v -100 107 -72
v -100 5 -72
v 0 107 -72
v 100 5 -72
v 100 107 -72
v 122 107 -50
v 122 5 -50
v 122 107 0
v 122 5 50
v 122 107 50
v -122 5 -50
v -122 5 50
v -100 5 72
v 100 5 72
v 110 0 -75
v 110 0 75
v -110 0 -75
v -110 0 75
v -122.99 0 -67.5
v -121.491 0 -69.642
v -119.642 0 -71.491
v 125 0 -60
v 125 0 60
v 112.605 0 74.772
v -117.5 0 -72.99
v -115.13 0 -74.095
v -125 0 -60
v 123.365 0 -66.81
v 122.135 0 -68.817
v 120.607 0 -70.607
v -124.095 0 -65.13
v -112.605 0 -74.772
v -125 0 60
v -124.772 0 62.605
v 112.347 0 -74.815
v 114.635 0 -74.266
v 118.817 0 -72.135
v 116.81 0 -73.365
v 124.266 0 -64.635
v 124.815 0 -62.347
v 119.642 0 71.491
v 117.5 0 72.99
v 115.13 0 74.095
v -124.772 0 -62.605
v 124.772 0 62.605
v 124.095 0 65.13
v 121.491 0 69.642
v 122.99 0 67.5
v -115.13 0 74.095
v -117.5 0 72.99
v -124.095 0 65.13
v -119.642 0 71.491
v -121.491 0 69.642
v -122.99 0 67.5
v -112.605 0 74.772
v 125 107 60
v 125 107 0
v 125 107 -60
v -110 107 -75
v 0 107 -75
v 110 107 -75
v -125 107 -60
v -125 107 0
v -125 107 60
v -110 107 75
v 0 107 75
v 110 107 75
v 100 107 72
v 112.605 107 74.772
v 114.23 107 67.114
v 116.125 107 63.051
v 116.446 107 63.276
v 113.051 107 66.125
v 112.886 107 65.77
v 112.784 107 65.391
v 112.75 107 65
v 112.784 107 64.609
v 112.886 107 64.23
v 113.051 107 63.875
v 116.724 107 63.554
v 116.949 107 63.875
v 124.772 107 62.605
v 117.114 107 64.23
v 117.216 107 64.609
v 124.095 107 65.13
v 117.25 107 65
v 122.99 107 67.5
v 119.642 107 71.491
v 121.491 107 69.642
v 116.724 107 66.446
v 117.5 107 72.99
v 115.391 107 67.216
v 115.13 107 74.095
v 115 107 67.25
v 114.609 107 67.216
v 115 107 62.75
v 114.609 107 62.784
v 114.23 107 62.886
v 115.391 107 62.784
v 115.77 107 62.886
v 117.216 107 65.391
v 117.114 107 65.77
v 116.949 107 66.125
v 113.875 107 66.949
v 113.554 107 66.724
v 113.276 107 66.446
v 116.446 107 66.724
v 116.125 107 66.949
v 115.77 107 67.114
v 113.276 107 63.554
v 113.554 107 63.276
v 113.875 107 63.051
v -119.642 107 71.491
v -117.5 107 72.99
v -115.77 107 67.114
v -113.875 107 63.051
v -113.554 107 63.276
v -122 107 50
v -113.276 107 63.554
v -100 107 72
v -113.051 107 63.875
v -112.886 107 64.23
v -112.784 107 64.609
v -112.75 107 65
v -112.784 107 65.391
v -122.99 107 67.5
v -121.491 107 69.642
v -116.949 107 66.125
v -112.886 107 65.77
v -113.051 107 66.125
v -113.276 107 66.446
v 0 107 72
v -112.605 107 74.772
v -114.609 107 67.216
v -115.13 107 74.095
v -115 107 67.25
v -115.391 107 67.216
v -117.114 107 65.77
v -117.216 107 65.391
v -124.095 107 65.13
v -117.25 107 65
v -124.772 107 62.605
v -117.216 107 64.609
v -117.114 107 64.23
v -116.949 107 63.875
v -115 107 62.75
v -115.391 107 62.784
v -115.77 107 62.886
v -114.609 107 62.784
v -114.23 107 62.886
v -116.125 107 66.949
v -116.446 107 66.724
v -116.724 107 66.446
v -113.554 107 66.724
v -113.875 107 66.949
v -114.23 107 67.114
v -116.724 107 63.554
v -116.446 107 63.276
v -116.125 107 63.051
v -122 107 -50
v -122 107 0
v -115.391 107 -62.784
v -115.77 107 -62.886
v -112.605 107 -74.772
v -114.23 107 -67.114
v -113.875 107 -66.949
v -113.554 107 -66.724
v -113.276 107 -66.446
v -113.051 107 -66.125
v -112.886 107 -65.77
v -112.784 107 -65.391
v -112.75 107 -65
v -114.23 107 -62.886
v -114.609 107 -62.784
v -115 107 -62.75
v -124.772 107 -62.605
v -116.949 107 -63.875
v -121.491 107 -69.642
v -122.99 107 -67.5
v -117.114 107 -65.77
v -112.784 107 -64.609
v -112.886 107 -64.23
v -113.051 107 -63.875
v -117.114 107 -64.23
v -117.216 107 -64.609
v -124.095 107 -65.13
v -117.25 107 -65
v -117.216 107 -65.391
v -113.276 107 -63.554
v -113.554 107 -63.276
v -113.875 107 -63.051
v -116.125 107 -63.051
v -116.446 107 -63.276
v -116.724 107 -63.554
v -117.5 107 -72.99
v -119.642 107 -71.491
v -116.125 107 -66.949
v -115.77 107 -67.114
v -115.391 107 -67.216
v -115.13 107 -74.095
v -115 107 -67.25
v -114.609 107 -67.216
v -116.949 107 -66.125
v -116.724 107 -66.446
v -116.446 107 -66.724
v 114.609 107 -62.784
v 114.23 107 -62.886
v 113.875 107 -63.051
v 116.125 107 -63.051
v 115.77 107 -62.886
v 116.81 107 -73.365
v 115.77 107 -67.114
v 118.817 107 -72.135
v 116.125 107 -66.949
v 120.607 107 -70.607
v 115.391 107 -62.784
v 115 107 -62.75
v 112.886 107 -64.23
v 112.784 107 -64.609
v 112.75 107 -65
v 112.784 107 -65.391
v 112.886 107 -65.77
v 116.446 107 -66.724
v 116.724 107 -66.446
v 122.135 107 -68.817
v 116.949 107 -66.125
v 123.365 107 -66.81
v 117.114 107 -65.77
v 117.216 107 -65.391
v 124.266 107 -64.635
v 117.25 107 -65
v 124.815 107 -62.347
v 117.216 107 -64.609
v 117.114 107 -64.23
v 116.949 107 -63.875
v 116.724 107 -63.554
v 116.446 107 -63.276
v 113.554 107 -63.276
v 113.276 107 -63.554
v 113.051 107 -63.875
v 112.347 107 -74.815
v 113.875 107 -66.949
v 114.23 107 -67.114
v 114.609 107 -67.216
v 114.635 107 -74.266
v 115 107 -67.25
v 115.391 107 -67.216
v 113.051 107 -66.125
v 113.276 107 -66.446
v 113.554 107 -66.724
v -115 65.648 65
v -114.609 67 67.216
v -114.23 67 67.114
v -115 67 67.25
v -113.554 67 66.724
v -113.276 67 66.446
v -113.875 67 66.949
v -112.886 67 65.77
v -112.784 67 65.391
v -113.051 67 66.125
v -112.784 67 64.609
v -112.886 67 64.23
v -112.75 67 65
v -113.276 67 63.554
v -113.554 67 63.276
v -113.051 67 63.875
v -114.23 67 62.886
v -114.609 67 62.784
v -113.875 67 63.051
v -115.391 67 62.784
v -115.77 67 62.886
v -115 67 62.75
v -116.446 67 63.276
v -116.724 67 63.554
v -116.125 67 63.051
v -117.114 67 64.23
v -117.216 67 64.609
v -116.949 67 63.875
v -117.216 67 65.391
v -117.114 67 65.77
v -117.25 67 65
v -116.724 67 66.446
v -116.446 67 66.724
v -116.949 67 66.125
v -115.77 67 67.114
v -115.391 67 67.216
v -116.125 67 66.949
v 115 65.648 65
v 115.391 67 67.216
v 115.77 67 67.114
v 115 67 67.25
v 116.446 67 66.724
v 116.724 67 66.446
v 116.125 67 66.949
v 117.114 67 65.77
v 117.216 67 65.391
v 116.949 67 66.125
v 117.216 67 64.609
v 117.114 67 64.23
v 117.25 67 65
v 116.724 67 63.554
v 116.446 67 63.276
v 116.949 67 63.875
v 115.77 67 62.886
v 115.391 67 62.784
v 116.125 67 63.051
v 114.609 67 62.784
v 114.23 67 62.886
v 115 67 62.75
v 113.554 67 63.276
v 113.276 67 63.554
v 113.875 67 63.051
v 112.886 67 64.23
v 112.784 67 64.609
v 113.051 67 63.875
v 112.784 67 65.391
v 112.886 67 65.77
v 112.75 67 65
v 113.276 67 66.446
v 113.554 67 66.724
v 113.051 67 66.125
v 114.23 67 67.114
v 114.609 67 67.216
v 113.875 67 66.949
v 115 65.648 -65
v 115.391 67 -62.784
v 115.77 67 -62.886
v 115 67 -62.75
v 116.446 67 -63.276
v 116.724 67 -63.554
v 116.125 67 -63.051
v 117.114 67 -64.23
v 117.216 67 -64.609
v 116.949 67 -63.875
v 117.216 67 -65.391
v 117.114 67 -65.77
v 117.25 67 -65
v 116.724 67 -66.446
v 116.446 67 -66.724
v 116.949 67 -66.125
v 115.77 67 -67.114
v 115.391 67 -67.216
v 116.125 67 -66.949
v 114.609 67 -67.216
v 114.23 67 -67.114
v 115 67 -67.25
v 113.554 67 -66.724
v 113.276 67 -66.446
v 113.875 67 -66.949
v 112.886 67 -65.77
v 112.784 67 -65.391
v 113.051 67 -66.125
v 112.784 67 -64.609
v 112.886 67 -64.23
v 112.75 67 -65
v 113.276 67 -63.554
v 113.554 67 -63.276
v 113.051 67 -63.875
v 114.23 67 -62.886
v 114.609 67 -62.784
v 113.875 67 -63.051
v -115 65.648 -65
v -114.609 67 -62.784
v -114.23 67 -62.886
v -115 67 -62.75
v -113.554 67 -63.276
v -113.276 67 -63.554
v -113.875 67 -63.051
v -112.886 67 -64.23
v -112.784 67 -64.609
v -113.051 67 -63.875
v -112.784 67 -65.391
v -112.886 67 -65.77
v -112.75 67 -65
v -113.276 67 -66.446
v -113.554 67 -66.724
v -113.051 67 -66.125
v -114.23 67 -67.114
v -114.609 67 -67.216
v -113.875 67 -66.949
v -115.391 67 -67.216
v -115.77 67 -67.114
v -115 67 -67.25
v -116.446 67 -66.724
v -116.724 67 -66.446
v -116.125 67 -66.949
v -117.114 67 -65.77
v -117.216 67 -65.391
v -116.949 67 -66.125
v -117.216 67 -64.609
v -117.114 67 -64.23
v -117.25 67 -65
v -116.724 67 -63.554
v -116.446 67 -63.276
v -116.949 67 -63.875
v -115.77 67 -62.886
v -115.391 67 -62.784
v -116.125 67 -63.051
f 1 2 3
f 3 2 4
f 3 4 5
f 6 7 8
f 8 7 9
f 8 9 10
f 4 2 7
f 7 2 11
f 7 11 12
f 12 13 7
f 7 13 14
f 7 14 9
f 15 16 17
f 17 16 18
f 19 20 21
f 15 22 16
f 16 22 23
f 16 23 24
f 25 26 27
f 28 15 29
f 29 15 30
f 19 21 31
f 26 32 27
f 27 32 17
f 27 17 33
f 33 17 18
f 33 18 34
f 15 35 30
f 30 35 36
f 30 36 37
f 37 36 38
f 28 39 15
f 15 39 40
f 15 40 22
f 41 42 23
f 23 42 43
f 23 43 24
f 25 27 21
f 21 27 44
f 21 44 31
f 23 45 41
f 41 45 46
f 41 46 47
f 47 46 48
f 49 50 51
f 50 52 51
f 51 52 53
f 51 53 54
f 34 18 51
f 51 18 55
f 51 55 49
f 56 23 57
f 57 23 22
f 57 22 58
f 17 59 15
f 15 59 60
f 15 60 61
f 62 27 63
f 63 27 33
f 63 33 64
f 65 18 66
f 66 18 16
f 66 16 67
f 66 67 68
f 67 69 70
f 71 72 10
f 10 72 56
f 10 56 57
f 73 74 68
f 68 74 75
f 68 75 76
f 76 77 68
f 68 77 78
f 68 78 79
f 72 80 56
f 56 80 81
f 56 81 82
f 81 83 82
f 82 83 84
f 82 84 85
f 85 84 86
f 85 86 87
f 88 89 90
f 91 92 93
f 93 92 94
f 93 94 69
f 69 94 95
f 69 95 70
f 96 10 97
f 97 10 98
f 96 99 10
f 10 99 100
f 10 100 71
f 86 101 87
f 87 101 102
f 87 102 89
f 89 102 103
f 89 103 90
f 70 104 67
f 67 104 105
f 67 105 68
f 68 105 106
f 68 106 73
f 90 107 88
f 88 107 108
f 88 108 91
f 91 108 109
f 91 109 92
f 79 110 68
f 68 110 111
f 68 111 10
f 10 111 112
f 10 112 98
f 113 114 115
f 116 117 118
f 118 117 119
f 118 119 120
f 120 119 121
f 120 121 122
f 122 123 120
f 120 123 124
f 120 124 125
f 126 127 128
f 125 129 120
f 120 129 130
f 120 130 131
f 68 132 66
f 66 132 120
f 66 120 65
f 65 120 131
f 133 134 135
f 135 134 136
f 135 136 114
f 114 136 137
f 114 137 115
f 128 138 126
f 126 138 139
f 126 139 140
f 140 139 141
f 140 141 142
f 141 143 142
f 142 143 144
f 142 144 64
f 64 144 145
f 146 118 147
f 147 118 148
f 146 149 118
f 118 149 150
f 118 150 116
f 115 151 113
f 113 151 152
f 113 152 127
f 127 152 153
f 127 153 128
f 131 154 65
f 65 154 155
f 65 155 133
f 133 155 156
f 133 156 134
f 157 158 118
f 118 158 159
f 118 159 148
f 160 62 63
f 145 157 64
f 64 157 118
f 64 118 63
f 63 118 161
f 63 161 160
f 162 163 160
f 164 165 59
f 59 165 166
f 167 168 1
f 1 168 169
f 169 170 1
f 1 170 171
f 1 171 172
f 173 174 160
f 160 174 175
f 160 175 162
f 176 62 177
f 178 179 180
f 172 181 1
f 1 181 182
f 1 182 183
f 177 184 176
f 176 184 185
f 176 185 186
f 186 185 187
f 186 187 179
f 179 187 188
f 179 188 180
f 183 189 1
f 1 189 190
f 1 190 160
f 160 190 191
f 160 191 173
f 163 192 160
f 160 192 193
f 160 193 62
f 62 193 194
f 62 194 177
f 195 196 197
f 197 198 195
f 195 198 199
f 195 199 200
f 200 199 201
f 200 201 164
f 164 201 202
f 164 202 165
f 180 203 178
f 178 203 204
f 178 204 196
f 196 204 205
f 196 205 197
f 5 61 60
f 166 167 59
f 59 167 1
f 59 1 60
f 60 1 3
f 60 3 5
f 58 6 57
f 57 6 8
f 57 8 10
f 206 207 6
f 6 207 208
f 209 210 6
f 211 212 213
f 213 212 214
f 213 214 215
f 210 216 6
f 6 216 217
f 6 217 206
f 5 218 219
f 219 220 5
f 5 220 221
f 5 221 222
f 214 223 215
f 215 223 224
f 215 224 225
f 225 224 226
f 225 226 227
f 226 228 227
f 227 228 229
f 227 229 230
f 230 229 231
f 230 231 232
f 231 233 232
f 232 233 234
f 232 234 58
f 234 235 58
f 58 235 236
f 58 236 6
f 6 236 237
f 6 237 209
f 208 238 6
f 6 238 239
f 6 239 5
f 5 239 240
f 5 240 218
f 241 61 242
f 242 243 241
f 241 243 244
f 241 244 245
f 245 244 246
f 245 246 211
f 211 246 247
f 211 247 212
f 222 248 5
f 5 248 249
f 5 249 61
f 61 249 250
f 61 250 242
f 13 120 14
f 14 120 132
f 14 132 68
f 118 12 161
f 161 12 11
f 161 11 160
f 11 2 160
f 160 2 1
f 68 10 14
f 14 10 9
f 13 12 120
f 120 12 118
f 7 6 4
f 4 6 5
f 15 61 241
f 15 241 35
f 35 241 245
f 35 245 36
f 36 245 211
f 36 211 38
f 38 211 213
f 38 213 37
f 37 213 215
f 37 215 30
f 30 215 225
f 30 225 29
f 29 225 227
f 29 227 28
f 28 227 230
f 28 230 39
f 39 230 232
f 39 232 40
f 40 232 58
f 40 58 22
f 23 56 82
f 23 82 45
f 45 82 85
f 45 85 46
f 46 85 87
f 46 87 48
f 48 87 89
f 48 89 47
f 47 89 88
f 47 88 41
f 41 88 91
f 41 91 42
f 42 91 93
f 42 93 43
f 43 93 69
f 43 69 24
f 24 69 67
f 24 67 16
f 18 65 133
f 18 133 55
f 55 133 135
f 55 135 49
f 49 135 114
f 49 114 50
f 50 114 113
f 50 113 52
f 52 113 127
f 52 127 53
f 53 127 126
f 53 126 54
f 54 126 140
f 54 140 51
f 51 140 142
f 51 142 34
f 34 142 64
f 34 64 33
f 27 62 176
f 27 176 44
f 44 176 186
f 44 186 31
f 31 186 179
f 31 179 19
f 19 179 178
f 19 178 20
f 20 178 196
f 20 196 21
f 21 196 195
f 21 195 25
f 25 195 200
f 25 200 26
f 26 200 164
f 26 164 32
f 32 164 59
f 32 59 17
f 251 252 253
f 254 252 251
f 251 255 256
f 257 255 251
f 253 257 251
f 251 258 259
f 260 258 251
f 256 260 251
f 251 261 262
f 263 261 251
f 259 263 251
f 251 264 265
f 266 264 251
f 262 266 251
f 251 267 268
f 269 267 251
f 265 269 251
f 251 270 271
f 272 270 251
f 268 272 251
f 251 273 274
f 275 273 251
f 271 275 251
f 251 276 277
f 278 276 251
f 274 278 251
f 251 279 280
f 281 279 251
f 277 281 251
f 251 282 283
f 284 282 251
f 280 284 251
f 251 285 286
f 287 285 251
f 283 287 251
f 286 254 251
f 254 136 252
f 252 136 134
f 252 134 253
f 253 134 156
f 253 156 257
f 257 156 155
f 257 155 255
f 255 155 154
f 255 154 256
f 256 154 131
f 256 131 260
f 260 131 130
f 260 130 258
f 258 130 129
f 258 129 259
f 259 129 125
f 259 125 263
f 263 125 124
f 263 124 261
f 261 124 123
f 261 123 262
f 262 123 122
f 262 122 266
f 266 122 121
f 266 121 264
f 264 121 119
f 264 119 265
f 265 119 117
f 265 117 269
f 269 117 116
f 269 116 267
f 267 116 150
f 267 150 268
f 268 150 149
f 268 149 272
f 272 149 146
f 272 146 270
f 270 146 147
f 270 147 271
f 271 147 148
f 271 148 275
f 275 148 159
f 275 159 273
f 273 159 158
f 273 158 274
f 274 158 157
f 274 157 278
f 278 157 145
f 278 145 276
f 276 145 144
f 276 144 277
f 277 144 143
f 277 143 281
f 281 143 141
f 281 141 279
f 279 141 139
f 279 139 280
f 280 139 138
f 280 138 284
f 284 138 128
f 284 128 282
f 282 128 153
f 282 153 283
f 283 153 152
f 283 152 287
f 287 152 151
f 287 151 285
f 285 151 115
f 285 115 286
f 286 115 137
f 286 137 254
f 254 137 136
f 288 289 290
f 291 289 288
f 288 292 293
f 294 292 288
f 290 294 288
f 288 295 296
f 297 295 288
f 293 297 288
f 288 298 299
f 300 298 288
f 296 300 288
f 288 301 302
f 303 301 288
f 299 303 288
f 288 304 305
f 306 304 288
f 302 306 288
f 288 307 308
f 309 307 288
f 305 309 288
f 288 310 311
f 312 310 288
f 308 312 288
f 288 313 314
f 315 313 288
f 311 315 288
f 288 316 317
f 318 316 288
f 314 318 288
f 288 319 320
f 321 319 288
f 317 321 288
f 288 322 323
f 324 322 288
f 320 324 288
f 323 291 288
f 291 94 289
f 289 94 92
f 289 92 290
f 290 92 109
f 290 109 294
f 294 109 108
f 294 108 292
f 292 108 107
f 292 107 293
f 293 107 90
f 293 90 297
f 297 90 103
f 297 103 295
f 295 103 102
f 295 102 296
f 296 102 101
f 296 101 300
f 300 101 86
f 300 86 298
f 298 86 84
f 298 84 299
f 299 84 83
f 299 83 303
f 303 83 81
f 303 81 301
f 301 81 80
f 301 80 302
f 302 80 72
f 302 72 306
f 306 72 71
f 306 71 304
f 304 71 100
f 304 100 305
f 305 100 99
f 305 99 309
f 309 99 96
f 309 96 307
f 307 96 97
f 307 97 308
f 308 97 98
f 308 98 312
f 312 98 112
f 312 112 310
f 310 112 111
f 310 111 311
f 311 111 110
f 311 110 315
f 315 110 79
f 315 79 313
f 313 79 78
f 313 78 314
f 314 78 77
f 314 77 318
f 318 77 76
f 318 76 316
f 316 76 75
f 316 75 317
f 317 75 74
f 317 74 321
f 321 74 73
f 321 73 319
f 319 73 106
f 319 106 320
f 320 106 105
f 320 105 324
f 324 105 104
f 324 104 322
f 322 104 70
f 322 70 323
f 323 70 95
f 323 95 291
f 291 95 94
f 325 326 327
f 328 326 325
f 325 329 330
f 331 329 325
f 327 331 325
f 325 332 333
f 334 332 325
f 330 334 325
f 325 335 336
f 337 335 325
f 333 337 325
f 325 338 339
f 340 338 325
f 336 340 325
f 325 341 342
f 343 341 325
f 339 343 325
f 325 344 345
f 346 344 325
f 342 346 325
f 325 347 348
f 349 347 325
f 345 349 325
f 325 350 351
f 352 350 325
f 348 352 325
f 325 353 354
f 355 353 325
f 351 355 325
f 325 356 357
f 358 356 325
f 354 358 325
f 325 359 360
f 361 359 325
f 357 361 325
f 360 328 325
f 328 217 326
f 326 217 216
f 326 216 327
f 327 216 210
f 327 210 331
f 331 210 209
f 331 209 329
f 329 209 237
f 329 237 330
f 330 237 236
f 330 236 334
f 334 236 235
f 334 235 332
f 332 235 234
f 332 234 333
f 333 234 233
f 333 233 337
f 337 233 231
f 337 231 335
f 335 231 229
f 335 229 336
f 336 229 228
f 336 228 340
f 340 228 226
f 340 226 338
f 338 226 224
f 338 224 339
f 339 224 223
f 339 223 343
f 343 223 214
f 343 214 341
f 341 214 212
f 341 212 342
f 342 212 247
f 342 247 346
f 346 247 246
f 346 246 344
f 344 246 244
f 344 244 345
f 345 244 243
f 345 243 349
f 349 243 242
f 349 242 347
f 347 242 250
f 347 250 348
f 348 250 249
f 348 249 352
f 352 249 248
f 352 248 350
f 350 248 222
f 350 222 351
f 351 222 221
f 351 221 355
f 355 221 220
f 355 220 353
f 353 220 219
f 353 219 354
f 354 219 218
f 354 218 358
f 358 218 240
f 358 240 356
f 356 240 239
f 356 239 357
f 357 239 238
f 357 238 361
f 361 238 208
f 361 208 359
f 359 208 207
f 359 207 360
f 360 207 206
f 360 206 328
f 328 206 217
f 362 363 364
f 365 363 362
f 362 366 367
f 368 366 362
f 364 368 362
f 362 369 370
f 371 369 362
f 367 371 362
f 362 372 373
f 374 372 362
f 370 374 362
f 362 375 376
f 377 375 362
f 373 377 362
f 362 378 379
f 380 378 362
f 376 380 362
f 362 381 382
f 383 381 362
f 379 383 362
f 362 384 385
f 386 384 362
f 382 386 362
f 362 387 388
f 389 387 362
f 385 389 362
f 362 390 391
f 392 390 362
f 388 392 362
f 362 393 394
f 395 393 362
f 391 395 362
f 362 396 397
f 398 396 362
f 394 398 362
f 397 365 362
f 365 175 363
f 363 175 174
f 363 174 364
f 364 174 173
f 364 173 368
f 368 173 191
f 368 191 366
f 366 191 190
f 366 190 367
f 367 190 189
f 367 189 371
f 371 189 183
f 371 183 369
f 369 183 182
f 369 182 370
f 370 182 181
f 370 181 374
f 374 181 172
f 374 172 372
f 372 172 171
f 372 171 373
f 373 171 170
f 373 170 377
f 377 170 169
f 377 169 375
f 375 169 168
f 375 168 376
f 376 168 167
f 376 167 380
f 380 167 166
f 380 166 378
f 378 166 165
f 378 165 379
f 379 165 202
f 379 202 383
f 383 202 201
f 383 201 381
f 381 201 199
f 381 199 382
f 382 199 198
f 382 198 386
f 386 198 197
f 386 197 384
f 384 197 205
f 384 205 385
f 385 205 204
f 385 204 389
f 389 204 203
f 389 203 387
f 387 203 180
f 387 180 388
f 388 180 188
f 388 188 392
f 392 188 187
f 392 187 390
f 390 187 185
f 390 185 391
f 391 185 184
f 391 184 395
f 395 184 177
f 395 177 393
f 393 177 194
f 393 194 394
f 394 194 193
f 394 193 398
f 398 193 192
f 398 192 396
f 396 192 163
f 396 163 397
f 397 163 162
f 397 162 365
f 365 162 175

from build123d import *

# Parameters (mm, degrees)
CROQUIS1_W                       = 250
CROQUIS1_H                       = 150
SALIENTE_EXTRUIR1_DEPTH          = 110
REDONDEO1_R                      = 15
VACIADO2_T                       = -3
CROQUIS3_W                       = 250
CROQUIS3_H                       = 150
SALIENTE_EXTRUIR2_DEPTH          = 5
REDONDEO2_R                      = 15
CROQUIS4_W                       = 250
CROQUIS4_H                       = 150
CORTAR_EXTRUIR1_DEPTH            = 3
SALIENTE_EXTRUIR3_DEPTH          = 107
REDONDEO3_R                      = 15
TALADRO_DE_MARGEN_PARA_M41_D     = 4.5
TALADRO_DE_MARGEN_PARA_M41_DEPTH = 40
TALADRO_DE_MARGEN_PARA_M41_TIP   = 1.351936393


with BuildPart() as part:
    # Croquis1 → Saliente-Extruir1 (new body)
    with BuildSketch(Plane(origin=(0, 0, 0), x_dir=(1, 0, 0), z_dir=(0, 1, 0))):
        Rectangle(CROQUIS1_W, CROQUIS1_H)
    extrude(amount=SALIENTE_EXTRUIR1_DEPTH)

    # Redondeo1
    redondeo1_edges = [part.edges().sort_by_distance(p)[0] for p in [
        (125, 55, 75),
        (-125, 55, 75),
        (-125, 55, -75),
        (125, 55, -75),
    ]]
    fillet(redondeo1_edges, radius=REDONDEO1_R)

    # Vaciado2
    vaciado2_openings = [part.faces().sort_by_distance(p)[0] for p in [
        (0, 0, 0),
    ]]
    offset(amount=VACIADO2_T, openings=vaciado2_openings, kind=Kind.INTERSECTION)

    # Croquis3 → Saliente-Extruir2 (add)
    with BuildSketch(Plane.XZ):
        Rectangle(CROQUIS3_W, CROQUIS3_H)
    extrude(amount=-SALIENTE_EXTRUIR2_DEPTH)

    # Redondeo2
    redondeo2_edges = [part.edges().sort_by_distance(p)[0] for p in [
        (125, 2.5, 75),
        (125, 2.5, -75),
        (-125, 2.5, -75),
        (-125, 2.5, 75),
    ]]
    fillet(redondeo2_edges, radius=REDONDEO2_R - 0.0001)  # a hair under: the kernel refuses the full size

    # Croquis4 → Cortar-Extruir1 (cut)
    with BuildSketch(Plane(origin=(0, 110, 0), x_dir=(1, 0, 0), z_dir=(0, 1, 0))):
        Rectangle(CROQUIS4_W, CROQUIS4_H)
    extrude(amount=-CORTAR_EXTRUIR1_DEPTH, mode=Mode.SUBTRACT)

    # Croquis5 → Saliente-Extruir3 (add)
    with BuildSketch(Plane(origin=(0, 107, 0), x_dir=(1, 0, 0), z_dir=(0, 1, 0))):
        Polygon((-125, -47), (-125, -75), (-97, -75), align=None)
        Polygon((-97, 75), (-125, 75), (-125, 47), (-122, 50), (-100, 72), align=None)
        Polygon((97, -75), (125, -75), (125, -47), align=None)
        Polygon((97, 75), (125, 47), (125, 75), align=None)
    extrude(amount=-SALIENTE_EXTRUIR3_DEPTH)

    # Redondeo3
    redondeo3_edges = [part.edges().sort_by_distance(p)[0] for p in [
        (-125, 53.5, -75),
        (125, 53.5, 75),
        (-125, 53.5, 75),
        (125, 53.5, -75),
    ]]
    fillet(redondeo3_edges, radius=REDONDEO3_R)

    # Taladro de margen para M41
    with Locations(Plane(origin=(0, 107, 0), x_dir=(1, 0, 0), z_dir=(0, 1, 0))):
        with Locations((-115, 65), (115, 65), (115, -65), (-115, -65)):
            Hole(TALADRO_DE_MARGEN_PARA_M41_D / 2, depth=TALADRO_DE_MARGEN_PARA_M41_DEPTH)
            with Locations((0, 0, -(TALADRO_DE_MARGEN_PARA_M41_DEPTH + TALADRO_DE_MARGEN_PARA_M41_TIP / 2))):  # 118° drill point
                Cone(0, TALADRO_DE_MARGEN_PARA_M41_D / 2, TALADRO_DE_MARGEN_PARA_M41_TIP, mode=Mode.SUBTRACT)


solid = part.part
